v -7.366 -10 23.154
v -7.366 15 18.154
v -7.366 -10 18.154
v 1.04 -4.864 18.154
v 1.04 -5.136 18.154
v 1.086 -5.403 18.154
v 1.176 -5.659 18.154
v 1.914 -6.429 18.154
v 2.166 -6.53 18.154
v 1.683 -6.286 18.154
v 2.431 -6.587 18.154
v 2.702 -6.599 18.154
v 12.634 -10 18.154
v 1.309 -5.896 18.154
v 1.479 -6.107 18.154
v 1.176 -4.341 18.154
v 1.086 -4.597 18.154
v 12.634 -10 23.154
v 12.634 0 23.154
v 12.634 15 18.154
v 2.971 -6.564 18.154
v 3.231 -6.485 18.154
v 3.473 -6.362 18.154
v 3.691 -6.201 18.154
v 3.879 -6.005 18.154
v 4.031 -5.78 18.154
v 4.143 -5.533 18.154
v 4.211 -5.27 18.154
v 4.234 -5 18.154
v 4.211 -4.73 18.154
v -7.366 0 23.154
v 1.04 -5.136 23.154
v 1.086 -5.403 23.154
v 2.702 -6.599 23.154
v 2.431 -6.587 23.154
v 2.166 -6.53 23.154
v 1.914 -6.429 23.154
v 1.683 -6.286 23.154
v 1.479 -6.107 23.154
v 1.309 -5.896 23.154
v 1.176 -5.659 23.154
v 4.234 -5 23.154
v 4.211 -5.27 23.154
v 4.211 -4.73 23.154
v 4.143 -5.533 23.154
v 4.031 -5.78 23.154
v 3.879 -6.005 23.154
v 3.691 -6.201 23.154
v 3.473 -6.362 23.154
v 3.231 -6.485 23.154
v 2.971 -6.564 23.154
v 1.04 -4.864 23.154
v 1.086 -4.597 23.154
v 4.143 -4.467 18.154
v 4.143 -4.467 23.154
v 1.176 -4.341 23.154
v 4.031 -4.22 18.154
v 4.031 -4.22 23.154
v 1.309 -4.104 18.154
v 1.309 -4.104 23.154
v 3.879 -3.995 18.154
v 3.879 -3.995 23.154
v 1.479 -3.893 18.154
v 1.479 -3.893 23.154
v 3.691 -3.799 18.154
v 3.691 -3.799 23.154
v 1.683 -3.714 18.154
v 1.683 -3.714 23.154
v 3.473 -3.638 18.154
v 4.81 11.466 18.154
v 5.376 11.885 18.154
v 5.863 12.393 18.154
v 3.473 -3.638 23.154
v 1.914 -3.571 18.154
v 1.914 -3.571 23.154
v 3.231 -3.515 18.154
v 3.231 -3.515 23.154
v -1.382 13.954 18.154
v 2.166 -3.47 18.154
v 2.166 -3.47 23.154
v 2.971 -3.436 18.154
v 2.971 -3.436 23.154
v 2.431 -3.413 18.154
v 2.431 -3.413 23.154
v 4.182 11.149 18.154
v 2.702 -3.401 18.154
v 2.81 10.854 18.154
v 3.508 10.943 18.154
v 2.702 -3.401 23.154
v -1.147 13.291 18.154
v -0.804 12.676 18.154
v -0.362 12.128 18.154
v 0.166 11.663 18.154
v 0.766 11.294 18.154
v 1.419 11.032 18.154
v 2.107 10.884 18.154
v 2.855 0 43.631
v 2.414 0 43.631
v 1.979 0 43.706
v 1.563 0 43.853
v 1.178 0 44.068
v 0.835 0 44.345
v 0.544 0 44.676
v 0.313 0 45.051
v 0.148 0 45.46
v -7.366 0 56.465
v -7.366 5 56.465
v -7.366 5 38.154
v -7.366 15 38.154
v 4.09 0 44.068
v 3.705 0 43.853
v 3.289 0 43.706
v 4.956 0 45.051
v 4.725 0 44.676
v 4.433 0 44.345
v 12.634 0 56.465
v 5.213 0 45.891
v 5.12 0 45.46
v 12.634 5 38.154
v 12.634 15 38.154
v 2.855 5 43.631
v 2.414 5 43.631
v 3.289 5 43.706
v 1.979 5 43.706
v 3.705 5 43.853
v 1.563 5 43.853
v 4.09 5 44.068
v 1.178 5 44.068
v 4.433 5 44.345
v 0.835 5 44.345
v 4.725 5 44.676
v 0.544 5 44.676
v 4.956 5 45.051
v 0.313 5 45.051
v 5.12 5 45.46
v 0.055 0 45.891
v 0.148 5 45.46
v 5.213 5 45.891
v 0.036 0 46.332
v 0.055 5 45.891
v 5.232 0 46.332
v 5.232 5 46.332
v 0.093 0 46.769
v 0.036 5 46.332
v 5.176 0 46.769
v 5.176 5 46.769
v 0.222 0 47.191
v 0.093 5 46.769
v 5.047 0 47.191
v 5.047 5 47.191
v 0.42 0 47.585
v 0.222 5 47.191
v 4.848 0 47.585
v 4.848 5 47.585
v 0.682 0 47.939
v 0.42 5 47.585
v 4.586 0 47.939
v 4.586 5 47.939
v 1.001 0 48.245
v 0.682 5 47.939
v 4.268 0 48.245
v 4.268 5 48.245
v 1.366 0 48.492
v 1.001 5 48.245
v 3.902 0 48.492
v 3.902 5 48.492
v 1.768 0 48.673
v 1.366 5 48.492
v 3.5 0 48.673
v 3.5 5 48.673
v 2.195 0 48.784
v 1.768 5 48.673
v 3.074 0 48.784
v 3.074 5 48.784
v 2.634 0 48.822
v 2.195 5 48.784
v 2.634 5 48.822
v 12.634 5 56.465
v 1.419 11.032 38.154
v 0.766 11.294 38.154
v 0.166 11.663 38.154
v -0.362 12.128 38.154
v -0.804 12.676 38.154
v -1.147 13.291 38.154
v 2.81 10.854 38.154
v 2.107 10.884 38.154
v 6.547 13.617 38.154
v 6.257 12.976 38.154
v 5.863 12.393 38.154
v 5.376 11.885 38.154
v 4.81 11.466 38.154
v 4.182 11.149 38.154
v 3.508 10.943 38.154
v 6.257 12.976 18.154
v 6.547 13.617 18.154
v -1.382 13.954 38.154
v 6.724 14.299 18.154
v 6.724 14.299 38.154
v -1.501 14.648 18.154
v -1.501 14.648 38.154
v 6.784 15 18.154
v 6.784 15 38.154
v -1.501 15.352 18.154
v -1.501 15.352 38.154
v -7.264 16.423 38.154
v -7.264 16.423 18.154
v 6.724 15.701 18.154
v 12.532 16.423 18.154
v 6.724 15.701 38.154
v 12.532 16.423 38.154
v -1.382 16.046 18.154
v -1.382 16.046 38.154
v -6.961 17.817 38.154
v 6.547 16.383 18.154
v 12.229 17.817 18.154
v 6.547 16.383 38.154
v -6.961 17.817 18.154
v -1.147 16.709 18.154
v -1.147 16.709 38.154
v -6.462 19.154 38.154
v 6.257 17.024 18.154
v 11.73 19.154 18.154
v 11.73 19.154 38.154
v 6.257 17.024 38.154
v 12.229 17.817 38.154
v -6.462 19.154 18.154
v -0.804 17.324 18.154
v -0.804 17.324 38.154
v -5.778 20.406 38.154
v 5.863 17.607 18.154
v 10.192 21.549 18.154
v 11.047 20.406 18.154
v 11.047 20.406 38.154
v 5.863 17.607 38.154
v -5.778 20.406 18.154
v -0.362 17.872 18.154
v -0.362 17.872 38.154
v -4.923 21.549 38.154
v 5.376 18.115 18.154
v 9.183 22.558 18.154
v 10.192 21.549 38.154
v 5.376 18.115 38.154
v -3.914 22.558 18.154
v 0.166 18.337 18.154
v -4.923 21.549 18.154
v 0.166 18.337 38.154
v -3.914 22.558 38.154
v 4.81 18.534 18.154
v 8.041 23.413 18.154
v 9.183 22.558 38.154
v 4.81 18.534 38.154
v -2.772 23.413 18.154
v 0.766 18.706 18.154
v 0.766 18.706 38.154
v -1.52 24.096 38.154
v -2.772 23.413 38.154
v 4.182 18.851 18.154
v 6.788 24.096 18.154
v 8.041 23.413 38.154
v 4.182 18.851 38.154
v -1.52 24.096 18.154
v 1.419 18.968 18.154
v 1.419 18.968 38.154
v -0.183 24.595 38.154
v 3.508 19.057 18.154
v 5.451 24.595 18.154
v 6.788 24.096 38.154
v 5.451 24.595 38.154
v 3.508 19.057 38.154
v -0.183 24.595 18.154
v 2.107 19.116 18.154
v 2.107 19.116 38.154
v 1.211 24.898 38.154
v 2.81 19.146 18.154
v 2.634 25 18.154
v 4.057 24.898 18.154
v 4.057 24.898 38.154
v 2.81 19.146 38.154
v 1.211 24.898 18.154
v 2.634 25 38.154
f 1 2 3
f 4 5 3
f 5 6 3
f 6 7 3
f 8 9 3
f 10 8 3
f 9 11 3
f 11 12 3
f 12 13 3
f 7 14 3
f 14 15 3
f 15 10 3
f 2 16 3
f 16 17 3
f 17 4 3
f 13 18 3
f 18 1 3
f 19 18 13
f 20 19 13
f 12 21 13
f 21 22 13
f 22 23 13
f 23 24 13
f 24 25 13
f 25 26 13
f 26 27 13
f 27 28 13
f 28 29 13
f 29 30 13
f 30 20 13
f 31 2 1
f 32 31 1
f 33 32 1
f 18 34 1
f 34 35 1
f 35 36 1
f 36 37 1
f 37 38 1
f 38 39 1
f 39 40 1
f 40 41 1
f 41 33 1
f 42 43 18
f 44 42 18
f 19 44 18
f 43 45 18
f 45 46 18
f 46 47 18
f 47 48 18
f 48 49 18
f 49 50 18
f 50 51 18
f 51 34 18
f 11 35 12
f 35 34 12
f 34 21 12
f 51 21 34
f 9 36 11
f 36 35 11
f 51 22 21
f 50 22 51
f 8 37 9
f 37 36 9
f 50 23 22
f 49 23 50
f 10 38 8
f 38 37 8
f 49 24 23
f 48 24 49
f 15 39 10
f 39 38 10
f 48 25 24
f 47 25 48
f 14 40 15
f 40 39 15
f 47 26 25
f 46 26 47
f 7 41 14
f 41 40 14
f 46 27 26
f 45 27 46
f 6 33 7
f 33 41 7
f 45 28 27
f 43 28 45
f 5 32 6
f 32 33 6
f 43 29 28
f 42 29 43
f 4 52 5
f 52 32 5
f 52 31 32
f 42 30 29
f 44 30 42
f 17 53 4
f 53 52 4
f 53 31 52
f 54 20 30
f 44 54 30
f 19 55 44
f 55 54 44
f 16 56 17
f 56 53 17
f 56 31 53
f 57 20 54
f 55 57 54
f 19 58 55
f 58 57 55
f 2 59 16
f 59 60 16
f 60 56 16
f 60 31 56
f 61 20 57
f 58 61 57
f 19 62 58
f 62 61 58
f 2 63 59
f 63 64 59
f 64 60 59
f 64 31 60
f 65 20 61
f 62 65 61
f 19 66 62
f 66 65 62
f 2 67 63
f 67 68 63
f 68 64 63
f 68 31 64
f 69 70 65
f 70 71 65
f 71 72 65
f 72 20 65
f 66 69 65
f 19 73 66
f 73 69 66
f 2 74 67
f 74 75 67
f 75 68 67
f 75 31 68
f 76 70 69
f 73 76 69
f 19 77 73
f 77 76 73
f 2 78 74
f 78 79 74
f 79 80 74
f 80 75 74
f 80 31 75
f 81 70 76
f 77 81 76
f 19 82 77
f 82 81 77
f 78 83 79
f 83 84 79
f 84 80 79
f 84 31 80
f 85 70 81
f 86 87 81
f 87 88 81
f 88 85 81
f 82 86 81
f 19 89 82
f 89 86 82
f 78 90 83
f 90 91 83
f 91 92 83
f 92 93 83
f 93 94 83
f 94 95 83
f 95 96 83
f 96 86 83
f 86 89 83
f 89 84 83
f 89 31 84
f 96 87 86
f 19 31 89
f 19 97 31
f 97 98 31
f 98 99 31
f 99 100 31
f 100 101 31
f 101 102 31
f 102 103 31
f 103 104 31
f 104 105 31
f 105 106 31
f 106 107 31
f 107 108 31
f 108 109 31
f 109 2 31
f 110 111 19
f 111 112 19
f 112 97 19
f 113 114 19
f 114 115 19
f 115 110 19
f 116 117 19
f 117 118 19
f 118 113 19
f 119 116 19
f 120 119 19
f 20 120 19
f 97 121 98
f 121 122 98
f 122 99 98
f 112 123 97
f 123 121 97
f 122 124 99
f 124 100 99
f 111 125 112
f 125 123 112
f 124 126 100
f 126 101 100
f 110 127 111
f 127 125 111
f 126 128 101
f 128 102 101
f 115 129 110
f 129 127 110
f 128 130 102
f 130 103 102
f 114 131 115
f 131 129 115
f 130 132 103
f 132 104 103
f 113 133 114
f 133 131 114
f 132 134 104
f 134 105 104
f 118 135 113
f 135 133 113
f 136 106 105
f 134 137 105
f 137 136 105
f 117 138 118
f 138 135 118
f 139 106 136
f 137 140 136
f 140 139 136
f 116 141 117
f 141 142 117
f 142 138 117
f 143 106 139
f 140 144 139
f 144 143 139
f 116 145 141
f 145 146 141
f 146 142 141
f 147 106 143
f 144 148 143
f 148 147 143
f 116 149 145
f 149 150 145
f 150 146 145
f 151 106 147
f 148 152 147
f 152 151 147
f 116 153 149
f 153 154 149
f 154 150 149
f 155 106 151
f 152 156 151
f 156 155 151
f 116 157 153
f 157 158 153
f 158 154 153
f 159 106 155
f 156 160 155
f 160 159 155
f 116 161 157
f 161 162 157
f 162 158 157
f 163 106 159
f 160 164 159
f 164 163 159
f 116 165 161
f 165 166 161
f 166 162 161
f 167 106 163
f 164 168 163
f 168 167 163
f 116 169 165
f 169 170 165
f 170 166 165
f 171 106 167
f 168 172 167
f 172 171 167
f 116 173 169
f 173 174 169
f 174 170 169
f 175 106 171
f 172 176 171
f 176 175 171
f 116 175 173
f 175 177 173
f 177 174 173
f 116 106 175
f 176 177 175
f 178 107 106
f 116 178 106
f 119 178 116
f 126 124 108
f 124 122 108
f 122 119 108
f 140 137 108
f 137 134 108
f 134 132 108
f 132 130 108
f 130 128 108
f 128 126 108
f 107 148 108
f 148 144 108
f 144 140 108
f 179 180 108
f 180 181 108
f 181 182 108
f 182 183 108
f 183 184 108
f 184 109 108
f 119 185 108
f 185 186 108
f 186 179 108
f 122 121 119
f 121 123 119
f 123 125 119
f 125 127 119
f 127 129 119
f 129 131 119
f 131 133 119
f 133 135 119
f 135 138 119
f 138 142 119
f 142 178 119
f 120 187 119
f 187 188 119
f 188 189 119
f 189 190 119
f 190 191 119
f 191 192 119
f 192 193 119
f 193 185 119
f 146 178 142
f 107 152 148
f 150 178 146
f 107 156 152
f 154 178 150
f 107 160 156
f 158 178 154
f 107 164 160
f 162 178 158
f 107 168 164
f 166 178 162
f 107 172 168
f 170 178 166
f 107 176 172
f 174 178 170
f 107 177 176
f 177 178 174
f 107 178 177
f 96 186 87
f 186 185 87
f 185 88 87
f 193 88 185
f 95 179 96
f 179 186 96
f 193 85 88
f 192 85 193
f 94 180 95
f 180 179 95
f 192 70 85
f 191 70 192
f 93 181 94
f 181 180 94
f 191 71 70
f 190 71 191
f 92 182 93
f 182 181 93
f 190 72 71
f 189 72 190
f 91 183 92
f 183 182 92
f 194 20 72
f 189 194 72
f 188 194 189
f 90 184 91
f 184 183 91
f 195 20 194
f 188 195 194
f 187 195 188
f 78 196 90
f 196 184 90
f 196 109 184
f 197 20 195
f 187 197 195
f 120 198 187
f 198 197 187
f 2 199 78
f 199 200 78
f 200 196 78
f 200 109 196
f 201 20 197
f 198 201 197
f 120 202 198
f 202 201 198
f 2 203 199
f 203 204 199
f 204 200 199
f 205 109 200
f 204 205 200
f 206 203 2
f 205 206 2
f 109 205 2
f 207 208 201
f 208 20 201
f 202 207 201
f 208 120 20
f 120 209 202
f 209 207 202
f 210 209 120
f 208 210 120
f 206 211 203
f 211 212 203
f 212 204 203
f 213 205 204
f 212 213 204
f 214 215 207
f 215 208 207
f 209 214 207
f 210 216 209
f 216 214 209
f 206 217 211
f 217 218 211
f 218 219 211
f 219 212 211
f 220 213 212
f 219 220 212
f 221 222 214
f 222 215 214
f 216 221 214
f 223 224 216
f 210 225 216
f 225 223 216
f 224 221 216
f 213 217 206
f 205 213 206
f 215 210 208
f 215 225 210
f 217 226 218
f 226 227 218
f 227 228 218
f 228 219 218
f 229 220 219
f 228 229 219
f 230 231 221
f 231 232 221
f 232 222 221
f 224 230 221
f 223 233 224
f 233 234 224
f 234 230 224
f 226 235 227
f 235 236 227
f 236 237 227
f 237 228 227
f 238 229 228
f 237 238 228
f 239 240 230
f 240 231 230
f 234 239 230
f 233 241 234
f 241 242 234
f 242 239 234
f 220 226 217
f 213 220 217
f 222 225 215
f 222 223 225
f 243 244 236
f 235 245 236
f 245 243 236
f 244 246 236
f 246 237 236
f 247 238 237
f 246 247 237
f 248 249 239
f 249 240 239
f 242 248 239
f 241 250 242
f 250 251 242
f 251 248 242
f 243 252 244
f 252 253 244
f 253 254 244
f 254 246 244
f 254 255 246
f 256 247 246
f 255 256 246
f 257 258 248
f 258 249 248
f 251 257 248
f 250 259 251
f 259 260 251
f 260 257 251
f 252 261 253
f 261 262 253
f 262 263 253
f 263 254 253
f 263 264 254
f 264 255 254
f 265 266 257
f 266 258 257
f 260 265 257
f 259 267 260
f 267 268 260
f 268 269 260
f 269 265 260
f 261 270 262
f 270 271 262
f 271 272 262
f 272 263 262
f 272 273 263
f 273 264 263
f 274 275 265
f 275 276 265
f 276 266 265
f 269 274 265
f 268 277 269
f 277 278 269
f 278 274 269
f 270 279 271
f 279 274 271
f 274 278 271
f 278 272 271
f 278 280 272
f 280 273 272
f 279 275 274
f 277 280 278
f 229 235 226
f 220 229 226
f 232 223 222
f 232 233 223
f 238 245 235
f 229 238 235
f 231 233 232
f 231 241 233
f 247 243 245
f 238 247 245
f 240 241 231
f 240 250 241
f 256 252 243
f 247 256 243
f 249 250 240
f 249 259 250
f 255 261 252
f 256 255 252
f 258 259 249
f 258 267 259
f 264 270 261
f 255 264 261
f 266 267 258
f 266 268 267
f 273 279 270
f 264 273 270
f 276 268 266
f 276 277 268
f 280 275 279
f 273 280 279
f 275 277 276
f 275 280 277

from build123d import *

# Parameters (mm, degrees)
SKETCH_1_W          = 20
SKETCH_1_H          = 40
EXTRUDE_1_DEPTH     = 5
SKETCH_2_W          = 20
SKETCH_2_H          = 20
EXTRUDE_2_DEPTH     = 20
SKETCH_3_R          = 4.15
CUT_EXTRUDE_1_DEPTH = 42.044142746
FILLET_1_R          = 10
SKETCH_6_W          = 20
SKETCH_6_H          = 25.791536141
CUT_EXTRUDE_3_DEPTH = 54.65112416
SKETCH_7_W          = 20
SKETCH_7_H          = 5
EXTRUDE_5_DEPTH     = 10
SKETCH_8_W          = 20
SKETCH_8_H          = 5
EXTRUDE_6_DEPTH     = 10
SKETCH_10_R         = 1.6
CUT_EXTRUDE_5_DEPTH = 45.828803841
SKETCH_11_W         = 20
SKETCH_11_H         = 5
EXTRUDE_7_DEPTH     = 20
SKETCH_12_R         = 2.6
CUT_EXTRUDE_7_DEPTH = 82.655934826
SKETCH_13_W         = 20
SKETCH_13_H         = 21.689007925
CUT_EXTRUDE_8_DEPTH = 82.655934826


with BuildPart() as part:
    # 草图1 → 凸台-拉伸1 (new body)
    with BuildSketch(Plane(origin=(0, 0, 0), x_dir=(1, 0, 0), z_dir=(0, 1, 0))):
        with Locations((2.634146341, -28.154142811)):
            Rectangle(SKETCH_1_W, SKETCH_1_H)
    extrude(amount=EXTRUDE_1_DEPTH)

    # 草图2 → 凸台-拉伸2 (add)
    with BuildSketch(Plane(origin=(0, 5, 0), x_dir=(1, 0, 0), z_dir=(0, 1, 0))):
        with Locations((2.634146341, -28.154142811)):
            Rectangle(SKETCH_2_W, SKETCH_2_H)
    extrude(amount=EXTRUDE_2_DEPTH)

    # 草图3 → 切除-拉伸1 (cut, through all)
    with BuildSketch(Plane.XY.offset(38.154142811)):
        with Locations((2.634146341, 15)):
            Circle(SKETCH_3_R)
    extrude(amount=-CUT_EXTRUDE_1_DEPTH, mode=Mode.SUBTRACT)

    # 圆角1
    fillet_1_edges = [part.edges().sort_by_distance(p)[0] for p in [
        (12.634146341, 25, 28.154142811),
        (-7.365853659, 25, 28.154142811),
    ]]
    fillet(fillet_1_edges, radius=FILLET_1_R - 0.0001)  # a hair under: the kernel refuses the full size

    # 草图6 → 切除-拉伸3 (cut, through all)
    with BuildSketch(Plane(origin=(0, 5, 0), x_dir=(1, 0, 0), z_dir=(0, 1, 0))):
        with Locations((2.634146341, -5.25837474)):
            Rectangle(SKETCH_6_W, SKETCH_6_H)
    extrude(amount=-CUT_EXTRUDE_3_DEPTH, mode=Mode.SUBTRACT)

    # 草图7 → 凸台-拉伸5 (add)
    with BuildSketch(Plane.XZ):
        with Locations((2.634146341, 20.654142811)):
            Rectangle(SKETCH_7_W, SKETCH_7_H)
    extrude(amount=EXTRUDE_5_DEPTH)

    # 草图8 → 凸台-拉伸6 (add)
    with BuildSketch(Plane.XY.offset(48.154142811)):
        with Locations((2.634146341, 2.5)):
            Rectangle(SKETCH_8_W, SKETCH_8_H)
    extrude(amount=EXTRUDE_6_DEPTH)

    # 草图10 → 切除-拉伸5 (cut, through all)
    with BuildSketch(Plane.XY.offset(23.154142811)):
        with Locations((2.634146341, -5)):
            Circle(SKETCH_10_R)
    extrude(amount=-CUT_EXTRUDE_5_DEPTH, mode=Mode.SUBTRACT)

    # 草图11 → 凸台-拉伸7 (add)
    with BuildSketch(Plane.XY.offset(58.154142811)):
        with Locations((2.634146341, 2.5)):
            Rectangle(SKETCH_11_W, SKETCH_11_H)
    extrude(amount=EXTRUDE_7_DEPTH)

    # 草图12 → 切除-拉伸7 (cut, through all)
    with BuildSketch(Plane(origin=(0, 5, 0), x_dir=(1, 0, 0), z_dir=(0, 1, 0))):
        with Locations(Location((2.634146341, -46.221727325, 0), (0, 0, 270))):
            Circle(SKETCH_12_R)
        with Locations(Location((2.634146341, -72.110167443, 0), (0, 0, 270))):
            Circle(SKETCH_12_R)
    extrude(amount=-CUT_EXTRUDE_7_DEPTH, mode=Mode.SUBTRACT)

    # 草图13 → 切除-拉伸8 (cut, through all)
    with BuildSketch(Plane(origin=(0, 5, 0), x_dir=(1, 0, 0), z_dir=(0, 1, 0))):
        with Locations((2.634146341, -67.309638849)):
            Rectangle(SKETCH_13_W, SKETCH_13_H)
    extrude(amount=-CUT_EXTRUDE_8_DEPTH, mode=Mode.SUBTRACT)


solid = part.part
